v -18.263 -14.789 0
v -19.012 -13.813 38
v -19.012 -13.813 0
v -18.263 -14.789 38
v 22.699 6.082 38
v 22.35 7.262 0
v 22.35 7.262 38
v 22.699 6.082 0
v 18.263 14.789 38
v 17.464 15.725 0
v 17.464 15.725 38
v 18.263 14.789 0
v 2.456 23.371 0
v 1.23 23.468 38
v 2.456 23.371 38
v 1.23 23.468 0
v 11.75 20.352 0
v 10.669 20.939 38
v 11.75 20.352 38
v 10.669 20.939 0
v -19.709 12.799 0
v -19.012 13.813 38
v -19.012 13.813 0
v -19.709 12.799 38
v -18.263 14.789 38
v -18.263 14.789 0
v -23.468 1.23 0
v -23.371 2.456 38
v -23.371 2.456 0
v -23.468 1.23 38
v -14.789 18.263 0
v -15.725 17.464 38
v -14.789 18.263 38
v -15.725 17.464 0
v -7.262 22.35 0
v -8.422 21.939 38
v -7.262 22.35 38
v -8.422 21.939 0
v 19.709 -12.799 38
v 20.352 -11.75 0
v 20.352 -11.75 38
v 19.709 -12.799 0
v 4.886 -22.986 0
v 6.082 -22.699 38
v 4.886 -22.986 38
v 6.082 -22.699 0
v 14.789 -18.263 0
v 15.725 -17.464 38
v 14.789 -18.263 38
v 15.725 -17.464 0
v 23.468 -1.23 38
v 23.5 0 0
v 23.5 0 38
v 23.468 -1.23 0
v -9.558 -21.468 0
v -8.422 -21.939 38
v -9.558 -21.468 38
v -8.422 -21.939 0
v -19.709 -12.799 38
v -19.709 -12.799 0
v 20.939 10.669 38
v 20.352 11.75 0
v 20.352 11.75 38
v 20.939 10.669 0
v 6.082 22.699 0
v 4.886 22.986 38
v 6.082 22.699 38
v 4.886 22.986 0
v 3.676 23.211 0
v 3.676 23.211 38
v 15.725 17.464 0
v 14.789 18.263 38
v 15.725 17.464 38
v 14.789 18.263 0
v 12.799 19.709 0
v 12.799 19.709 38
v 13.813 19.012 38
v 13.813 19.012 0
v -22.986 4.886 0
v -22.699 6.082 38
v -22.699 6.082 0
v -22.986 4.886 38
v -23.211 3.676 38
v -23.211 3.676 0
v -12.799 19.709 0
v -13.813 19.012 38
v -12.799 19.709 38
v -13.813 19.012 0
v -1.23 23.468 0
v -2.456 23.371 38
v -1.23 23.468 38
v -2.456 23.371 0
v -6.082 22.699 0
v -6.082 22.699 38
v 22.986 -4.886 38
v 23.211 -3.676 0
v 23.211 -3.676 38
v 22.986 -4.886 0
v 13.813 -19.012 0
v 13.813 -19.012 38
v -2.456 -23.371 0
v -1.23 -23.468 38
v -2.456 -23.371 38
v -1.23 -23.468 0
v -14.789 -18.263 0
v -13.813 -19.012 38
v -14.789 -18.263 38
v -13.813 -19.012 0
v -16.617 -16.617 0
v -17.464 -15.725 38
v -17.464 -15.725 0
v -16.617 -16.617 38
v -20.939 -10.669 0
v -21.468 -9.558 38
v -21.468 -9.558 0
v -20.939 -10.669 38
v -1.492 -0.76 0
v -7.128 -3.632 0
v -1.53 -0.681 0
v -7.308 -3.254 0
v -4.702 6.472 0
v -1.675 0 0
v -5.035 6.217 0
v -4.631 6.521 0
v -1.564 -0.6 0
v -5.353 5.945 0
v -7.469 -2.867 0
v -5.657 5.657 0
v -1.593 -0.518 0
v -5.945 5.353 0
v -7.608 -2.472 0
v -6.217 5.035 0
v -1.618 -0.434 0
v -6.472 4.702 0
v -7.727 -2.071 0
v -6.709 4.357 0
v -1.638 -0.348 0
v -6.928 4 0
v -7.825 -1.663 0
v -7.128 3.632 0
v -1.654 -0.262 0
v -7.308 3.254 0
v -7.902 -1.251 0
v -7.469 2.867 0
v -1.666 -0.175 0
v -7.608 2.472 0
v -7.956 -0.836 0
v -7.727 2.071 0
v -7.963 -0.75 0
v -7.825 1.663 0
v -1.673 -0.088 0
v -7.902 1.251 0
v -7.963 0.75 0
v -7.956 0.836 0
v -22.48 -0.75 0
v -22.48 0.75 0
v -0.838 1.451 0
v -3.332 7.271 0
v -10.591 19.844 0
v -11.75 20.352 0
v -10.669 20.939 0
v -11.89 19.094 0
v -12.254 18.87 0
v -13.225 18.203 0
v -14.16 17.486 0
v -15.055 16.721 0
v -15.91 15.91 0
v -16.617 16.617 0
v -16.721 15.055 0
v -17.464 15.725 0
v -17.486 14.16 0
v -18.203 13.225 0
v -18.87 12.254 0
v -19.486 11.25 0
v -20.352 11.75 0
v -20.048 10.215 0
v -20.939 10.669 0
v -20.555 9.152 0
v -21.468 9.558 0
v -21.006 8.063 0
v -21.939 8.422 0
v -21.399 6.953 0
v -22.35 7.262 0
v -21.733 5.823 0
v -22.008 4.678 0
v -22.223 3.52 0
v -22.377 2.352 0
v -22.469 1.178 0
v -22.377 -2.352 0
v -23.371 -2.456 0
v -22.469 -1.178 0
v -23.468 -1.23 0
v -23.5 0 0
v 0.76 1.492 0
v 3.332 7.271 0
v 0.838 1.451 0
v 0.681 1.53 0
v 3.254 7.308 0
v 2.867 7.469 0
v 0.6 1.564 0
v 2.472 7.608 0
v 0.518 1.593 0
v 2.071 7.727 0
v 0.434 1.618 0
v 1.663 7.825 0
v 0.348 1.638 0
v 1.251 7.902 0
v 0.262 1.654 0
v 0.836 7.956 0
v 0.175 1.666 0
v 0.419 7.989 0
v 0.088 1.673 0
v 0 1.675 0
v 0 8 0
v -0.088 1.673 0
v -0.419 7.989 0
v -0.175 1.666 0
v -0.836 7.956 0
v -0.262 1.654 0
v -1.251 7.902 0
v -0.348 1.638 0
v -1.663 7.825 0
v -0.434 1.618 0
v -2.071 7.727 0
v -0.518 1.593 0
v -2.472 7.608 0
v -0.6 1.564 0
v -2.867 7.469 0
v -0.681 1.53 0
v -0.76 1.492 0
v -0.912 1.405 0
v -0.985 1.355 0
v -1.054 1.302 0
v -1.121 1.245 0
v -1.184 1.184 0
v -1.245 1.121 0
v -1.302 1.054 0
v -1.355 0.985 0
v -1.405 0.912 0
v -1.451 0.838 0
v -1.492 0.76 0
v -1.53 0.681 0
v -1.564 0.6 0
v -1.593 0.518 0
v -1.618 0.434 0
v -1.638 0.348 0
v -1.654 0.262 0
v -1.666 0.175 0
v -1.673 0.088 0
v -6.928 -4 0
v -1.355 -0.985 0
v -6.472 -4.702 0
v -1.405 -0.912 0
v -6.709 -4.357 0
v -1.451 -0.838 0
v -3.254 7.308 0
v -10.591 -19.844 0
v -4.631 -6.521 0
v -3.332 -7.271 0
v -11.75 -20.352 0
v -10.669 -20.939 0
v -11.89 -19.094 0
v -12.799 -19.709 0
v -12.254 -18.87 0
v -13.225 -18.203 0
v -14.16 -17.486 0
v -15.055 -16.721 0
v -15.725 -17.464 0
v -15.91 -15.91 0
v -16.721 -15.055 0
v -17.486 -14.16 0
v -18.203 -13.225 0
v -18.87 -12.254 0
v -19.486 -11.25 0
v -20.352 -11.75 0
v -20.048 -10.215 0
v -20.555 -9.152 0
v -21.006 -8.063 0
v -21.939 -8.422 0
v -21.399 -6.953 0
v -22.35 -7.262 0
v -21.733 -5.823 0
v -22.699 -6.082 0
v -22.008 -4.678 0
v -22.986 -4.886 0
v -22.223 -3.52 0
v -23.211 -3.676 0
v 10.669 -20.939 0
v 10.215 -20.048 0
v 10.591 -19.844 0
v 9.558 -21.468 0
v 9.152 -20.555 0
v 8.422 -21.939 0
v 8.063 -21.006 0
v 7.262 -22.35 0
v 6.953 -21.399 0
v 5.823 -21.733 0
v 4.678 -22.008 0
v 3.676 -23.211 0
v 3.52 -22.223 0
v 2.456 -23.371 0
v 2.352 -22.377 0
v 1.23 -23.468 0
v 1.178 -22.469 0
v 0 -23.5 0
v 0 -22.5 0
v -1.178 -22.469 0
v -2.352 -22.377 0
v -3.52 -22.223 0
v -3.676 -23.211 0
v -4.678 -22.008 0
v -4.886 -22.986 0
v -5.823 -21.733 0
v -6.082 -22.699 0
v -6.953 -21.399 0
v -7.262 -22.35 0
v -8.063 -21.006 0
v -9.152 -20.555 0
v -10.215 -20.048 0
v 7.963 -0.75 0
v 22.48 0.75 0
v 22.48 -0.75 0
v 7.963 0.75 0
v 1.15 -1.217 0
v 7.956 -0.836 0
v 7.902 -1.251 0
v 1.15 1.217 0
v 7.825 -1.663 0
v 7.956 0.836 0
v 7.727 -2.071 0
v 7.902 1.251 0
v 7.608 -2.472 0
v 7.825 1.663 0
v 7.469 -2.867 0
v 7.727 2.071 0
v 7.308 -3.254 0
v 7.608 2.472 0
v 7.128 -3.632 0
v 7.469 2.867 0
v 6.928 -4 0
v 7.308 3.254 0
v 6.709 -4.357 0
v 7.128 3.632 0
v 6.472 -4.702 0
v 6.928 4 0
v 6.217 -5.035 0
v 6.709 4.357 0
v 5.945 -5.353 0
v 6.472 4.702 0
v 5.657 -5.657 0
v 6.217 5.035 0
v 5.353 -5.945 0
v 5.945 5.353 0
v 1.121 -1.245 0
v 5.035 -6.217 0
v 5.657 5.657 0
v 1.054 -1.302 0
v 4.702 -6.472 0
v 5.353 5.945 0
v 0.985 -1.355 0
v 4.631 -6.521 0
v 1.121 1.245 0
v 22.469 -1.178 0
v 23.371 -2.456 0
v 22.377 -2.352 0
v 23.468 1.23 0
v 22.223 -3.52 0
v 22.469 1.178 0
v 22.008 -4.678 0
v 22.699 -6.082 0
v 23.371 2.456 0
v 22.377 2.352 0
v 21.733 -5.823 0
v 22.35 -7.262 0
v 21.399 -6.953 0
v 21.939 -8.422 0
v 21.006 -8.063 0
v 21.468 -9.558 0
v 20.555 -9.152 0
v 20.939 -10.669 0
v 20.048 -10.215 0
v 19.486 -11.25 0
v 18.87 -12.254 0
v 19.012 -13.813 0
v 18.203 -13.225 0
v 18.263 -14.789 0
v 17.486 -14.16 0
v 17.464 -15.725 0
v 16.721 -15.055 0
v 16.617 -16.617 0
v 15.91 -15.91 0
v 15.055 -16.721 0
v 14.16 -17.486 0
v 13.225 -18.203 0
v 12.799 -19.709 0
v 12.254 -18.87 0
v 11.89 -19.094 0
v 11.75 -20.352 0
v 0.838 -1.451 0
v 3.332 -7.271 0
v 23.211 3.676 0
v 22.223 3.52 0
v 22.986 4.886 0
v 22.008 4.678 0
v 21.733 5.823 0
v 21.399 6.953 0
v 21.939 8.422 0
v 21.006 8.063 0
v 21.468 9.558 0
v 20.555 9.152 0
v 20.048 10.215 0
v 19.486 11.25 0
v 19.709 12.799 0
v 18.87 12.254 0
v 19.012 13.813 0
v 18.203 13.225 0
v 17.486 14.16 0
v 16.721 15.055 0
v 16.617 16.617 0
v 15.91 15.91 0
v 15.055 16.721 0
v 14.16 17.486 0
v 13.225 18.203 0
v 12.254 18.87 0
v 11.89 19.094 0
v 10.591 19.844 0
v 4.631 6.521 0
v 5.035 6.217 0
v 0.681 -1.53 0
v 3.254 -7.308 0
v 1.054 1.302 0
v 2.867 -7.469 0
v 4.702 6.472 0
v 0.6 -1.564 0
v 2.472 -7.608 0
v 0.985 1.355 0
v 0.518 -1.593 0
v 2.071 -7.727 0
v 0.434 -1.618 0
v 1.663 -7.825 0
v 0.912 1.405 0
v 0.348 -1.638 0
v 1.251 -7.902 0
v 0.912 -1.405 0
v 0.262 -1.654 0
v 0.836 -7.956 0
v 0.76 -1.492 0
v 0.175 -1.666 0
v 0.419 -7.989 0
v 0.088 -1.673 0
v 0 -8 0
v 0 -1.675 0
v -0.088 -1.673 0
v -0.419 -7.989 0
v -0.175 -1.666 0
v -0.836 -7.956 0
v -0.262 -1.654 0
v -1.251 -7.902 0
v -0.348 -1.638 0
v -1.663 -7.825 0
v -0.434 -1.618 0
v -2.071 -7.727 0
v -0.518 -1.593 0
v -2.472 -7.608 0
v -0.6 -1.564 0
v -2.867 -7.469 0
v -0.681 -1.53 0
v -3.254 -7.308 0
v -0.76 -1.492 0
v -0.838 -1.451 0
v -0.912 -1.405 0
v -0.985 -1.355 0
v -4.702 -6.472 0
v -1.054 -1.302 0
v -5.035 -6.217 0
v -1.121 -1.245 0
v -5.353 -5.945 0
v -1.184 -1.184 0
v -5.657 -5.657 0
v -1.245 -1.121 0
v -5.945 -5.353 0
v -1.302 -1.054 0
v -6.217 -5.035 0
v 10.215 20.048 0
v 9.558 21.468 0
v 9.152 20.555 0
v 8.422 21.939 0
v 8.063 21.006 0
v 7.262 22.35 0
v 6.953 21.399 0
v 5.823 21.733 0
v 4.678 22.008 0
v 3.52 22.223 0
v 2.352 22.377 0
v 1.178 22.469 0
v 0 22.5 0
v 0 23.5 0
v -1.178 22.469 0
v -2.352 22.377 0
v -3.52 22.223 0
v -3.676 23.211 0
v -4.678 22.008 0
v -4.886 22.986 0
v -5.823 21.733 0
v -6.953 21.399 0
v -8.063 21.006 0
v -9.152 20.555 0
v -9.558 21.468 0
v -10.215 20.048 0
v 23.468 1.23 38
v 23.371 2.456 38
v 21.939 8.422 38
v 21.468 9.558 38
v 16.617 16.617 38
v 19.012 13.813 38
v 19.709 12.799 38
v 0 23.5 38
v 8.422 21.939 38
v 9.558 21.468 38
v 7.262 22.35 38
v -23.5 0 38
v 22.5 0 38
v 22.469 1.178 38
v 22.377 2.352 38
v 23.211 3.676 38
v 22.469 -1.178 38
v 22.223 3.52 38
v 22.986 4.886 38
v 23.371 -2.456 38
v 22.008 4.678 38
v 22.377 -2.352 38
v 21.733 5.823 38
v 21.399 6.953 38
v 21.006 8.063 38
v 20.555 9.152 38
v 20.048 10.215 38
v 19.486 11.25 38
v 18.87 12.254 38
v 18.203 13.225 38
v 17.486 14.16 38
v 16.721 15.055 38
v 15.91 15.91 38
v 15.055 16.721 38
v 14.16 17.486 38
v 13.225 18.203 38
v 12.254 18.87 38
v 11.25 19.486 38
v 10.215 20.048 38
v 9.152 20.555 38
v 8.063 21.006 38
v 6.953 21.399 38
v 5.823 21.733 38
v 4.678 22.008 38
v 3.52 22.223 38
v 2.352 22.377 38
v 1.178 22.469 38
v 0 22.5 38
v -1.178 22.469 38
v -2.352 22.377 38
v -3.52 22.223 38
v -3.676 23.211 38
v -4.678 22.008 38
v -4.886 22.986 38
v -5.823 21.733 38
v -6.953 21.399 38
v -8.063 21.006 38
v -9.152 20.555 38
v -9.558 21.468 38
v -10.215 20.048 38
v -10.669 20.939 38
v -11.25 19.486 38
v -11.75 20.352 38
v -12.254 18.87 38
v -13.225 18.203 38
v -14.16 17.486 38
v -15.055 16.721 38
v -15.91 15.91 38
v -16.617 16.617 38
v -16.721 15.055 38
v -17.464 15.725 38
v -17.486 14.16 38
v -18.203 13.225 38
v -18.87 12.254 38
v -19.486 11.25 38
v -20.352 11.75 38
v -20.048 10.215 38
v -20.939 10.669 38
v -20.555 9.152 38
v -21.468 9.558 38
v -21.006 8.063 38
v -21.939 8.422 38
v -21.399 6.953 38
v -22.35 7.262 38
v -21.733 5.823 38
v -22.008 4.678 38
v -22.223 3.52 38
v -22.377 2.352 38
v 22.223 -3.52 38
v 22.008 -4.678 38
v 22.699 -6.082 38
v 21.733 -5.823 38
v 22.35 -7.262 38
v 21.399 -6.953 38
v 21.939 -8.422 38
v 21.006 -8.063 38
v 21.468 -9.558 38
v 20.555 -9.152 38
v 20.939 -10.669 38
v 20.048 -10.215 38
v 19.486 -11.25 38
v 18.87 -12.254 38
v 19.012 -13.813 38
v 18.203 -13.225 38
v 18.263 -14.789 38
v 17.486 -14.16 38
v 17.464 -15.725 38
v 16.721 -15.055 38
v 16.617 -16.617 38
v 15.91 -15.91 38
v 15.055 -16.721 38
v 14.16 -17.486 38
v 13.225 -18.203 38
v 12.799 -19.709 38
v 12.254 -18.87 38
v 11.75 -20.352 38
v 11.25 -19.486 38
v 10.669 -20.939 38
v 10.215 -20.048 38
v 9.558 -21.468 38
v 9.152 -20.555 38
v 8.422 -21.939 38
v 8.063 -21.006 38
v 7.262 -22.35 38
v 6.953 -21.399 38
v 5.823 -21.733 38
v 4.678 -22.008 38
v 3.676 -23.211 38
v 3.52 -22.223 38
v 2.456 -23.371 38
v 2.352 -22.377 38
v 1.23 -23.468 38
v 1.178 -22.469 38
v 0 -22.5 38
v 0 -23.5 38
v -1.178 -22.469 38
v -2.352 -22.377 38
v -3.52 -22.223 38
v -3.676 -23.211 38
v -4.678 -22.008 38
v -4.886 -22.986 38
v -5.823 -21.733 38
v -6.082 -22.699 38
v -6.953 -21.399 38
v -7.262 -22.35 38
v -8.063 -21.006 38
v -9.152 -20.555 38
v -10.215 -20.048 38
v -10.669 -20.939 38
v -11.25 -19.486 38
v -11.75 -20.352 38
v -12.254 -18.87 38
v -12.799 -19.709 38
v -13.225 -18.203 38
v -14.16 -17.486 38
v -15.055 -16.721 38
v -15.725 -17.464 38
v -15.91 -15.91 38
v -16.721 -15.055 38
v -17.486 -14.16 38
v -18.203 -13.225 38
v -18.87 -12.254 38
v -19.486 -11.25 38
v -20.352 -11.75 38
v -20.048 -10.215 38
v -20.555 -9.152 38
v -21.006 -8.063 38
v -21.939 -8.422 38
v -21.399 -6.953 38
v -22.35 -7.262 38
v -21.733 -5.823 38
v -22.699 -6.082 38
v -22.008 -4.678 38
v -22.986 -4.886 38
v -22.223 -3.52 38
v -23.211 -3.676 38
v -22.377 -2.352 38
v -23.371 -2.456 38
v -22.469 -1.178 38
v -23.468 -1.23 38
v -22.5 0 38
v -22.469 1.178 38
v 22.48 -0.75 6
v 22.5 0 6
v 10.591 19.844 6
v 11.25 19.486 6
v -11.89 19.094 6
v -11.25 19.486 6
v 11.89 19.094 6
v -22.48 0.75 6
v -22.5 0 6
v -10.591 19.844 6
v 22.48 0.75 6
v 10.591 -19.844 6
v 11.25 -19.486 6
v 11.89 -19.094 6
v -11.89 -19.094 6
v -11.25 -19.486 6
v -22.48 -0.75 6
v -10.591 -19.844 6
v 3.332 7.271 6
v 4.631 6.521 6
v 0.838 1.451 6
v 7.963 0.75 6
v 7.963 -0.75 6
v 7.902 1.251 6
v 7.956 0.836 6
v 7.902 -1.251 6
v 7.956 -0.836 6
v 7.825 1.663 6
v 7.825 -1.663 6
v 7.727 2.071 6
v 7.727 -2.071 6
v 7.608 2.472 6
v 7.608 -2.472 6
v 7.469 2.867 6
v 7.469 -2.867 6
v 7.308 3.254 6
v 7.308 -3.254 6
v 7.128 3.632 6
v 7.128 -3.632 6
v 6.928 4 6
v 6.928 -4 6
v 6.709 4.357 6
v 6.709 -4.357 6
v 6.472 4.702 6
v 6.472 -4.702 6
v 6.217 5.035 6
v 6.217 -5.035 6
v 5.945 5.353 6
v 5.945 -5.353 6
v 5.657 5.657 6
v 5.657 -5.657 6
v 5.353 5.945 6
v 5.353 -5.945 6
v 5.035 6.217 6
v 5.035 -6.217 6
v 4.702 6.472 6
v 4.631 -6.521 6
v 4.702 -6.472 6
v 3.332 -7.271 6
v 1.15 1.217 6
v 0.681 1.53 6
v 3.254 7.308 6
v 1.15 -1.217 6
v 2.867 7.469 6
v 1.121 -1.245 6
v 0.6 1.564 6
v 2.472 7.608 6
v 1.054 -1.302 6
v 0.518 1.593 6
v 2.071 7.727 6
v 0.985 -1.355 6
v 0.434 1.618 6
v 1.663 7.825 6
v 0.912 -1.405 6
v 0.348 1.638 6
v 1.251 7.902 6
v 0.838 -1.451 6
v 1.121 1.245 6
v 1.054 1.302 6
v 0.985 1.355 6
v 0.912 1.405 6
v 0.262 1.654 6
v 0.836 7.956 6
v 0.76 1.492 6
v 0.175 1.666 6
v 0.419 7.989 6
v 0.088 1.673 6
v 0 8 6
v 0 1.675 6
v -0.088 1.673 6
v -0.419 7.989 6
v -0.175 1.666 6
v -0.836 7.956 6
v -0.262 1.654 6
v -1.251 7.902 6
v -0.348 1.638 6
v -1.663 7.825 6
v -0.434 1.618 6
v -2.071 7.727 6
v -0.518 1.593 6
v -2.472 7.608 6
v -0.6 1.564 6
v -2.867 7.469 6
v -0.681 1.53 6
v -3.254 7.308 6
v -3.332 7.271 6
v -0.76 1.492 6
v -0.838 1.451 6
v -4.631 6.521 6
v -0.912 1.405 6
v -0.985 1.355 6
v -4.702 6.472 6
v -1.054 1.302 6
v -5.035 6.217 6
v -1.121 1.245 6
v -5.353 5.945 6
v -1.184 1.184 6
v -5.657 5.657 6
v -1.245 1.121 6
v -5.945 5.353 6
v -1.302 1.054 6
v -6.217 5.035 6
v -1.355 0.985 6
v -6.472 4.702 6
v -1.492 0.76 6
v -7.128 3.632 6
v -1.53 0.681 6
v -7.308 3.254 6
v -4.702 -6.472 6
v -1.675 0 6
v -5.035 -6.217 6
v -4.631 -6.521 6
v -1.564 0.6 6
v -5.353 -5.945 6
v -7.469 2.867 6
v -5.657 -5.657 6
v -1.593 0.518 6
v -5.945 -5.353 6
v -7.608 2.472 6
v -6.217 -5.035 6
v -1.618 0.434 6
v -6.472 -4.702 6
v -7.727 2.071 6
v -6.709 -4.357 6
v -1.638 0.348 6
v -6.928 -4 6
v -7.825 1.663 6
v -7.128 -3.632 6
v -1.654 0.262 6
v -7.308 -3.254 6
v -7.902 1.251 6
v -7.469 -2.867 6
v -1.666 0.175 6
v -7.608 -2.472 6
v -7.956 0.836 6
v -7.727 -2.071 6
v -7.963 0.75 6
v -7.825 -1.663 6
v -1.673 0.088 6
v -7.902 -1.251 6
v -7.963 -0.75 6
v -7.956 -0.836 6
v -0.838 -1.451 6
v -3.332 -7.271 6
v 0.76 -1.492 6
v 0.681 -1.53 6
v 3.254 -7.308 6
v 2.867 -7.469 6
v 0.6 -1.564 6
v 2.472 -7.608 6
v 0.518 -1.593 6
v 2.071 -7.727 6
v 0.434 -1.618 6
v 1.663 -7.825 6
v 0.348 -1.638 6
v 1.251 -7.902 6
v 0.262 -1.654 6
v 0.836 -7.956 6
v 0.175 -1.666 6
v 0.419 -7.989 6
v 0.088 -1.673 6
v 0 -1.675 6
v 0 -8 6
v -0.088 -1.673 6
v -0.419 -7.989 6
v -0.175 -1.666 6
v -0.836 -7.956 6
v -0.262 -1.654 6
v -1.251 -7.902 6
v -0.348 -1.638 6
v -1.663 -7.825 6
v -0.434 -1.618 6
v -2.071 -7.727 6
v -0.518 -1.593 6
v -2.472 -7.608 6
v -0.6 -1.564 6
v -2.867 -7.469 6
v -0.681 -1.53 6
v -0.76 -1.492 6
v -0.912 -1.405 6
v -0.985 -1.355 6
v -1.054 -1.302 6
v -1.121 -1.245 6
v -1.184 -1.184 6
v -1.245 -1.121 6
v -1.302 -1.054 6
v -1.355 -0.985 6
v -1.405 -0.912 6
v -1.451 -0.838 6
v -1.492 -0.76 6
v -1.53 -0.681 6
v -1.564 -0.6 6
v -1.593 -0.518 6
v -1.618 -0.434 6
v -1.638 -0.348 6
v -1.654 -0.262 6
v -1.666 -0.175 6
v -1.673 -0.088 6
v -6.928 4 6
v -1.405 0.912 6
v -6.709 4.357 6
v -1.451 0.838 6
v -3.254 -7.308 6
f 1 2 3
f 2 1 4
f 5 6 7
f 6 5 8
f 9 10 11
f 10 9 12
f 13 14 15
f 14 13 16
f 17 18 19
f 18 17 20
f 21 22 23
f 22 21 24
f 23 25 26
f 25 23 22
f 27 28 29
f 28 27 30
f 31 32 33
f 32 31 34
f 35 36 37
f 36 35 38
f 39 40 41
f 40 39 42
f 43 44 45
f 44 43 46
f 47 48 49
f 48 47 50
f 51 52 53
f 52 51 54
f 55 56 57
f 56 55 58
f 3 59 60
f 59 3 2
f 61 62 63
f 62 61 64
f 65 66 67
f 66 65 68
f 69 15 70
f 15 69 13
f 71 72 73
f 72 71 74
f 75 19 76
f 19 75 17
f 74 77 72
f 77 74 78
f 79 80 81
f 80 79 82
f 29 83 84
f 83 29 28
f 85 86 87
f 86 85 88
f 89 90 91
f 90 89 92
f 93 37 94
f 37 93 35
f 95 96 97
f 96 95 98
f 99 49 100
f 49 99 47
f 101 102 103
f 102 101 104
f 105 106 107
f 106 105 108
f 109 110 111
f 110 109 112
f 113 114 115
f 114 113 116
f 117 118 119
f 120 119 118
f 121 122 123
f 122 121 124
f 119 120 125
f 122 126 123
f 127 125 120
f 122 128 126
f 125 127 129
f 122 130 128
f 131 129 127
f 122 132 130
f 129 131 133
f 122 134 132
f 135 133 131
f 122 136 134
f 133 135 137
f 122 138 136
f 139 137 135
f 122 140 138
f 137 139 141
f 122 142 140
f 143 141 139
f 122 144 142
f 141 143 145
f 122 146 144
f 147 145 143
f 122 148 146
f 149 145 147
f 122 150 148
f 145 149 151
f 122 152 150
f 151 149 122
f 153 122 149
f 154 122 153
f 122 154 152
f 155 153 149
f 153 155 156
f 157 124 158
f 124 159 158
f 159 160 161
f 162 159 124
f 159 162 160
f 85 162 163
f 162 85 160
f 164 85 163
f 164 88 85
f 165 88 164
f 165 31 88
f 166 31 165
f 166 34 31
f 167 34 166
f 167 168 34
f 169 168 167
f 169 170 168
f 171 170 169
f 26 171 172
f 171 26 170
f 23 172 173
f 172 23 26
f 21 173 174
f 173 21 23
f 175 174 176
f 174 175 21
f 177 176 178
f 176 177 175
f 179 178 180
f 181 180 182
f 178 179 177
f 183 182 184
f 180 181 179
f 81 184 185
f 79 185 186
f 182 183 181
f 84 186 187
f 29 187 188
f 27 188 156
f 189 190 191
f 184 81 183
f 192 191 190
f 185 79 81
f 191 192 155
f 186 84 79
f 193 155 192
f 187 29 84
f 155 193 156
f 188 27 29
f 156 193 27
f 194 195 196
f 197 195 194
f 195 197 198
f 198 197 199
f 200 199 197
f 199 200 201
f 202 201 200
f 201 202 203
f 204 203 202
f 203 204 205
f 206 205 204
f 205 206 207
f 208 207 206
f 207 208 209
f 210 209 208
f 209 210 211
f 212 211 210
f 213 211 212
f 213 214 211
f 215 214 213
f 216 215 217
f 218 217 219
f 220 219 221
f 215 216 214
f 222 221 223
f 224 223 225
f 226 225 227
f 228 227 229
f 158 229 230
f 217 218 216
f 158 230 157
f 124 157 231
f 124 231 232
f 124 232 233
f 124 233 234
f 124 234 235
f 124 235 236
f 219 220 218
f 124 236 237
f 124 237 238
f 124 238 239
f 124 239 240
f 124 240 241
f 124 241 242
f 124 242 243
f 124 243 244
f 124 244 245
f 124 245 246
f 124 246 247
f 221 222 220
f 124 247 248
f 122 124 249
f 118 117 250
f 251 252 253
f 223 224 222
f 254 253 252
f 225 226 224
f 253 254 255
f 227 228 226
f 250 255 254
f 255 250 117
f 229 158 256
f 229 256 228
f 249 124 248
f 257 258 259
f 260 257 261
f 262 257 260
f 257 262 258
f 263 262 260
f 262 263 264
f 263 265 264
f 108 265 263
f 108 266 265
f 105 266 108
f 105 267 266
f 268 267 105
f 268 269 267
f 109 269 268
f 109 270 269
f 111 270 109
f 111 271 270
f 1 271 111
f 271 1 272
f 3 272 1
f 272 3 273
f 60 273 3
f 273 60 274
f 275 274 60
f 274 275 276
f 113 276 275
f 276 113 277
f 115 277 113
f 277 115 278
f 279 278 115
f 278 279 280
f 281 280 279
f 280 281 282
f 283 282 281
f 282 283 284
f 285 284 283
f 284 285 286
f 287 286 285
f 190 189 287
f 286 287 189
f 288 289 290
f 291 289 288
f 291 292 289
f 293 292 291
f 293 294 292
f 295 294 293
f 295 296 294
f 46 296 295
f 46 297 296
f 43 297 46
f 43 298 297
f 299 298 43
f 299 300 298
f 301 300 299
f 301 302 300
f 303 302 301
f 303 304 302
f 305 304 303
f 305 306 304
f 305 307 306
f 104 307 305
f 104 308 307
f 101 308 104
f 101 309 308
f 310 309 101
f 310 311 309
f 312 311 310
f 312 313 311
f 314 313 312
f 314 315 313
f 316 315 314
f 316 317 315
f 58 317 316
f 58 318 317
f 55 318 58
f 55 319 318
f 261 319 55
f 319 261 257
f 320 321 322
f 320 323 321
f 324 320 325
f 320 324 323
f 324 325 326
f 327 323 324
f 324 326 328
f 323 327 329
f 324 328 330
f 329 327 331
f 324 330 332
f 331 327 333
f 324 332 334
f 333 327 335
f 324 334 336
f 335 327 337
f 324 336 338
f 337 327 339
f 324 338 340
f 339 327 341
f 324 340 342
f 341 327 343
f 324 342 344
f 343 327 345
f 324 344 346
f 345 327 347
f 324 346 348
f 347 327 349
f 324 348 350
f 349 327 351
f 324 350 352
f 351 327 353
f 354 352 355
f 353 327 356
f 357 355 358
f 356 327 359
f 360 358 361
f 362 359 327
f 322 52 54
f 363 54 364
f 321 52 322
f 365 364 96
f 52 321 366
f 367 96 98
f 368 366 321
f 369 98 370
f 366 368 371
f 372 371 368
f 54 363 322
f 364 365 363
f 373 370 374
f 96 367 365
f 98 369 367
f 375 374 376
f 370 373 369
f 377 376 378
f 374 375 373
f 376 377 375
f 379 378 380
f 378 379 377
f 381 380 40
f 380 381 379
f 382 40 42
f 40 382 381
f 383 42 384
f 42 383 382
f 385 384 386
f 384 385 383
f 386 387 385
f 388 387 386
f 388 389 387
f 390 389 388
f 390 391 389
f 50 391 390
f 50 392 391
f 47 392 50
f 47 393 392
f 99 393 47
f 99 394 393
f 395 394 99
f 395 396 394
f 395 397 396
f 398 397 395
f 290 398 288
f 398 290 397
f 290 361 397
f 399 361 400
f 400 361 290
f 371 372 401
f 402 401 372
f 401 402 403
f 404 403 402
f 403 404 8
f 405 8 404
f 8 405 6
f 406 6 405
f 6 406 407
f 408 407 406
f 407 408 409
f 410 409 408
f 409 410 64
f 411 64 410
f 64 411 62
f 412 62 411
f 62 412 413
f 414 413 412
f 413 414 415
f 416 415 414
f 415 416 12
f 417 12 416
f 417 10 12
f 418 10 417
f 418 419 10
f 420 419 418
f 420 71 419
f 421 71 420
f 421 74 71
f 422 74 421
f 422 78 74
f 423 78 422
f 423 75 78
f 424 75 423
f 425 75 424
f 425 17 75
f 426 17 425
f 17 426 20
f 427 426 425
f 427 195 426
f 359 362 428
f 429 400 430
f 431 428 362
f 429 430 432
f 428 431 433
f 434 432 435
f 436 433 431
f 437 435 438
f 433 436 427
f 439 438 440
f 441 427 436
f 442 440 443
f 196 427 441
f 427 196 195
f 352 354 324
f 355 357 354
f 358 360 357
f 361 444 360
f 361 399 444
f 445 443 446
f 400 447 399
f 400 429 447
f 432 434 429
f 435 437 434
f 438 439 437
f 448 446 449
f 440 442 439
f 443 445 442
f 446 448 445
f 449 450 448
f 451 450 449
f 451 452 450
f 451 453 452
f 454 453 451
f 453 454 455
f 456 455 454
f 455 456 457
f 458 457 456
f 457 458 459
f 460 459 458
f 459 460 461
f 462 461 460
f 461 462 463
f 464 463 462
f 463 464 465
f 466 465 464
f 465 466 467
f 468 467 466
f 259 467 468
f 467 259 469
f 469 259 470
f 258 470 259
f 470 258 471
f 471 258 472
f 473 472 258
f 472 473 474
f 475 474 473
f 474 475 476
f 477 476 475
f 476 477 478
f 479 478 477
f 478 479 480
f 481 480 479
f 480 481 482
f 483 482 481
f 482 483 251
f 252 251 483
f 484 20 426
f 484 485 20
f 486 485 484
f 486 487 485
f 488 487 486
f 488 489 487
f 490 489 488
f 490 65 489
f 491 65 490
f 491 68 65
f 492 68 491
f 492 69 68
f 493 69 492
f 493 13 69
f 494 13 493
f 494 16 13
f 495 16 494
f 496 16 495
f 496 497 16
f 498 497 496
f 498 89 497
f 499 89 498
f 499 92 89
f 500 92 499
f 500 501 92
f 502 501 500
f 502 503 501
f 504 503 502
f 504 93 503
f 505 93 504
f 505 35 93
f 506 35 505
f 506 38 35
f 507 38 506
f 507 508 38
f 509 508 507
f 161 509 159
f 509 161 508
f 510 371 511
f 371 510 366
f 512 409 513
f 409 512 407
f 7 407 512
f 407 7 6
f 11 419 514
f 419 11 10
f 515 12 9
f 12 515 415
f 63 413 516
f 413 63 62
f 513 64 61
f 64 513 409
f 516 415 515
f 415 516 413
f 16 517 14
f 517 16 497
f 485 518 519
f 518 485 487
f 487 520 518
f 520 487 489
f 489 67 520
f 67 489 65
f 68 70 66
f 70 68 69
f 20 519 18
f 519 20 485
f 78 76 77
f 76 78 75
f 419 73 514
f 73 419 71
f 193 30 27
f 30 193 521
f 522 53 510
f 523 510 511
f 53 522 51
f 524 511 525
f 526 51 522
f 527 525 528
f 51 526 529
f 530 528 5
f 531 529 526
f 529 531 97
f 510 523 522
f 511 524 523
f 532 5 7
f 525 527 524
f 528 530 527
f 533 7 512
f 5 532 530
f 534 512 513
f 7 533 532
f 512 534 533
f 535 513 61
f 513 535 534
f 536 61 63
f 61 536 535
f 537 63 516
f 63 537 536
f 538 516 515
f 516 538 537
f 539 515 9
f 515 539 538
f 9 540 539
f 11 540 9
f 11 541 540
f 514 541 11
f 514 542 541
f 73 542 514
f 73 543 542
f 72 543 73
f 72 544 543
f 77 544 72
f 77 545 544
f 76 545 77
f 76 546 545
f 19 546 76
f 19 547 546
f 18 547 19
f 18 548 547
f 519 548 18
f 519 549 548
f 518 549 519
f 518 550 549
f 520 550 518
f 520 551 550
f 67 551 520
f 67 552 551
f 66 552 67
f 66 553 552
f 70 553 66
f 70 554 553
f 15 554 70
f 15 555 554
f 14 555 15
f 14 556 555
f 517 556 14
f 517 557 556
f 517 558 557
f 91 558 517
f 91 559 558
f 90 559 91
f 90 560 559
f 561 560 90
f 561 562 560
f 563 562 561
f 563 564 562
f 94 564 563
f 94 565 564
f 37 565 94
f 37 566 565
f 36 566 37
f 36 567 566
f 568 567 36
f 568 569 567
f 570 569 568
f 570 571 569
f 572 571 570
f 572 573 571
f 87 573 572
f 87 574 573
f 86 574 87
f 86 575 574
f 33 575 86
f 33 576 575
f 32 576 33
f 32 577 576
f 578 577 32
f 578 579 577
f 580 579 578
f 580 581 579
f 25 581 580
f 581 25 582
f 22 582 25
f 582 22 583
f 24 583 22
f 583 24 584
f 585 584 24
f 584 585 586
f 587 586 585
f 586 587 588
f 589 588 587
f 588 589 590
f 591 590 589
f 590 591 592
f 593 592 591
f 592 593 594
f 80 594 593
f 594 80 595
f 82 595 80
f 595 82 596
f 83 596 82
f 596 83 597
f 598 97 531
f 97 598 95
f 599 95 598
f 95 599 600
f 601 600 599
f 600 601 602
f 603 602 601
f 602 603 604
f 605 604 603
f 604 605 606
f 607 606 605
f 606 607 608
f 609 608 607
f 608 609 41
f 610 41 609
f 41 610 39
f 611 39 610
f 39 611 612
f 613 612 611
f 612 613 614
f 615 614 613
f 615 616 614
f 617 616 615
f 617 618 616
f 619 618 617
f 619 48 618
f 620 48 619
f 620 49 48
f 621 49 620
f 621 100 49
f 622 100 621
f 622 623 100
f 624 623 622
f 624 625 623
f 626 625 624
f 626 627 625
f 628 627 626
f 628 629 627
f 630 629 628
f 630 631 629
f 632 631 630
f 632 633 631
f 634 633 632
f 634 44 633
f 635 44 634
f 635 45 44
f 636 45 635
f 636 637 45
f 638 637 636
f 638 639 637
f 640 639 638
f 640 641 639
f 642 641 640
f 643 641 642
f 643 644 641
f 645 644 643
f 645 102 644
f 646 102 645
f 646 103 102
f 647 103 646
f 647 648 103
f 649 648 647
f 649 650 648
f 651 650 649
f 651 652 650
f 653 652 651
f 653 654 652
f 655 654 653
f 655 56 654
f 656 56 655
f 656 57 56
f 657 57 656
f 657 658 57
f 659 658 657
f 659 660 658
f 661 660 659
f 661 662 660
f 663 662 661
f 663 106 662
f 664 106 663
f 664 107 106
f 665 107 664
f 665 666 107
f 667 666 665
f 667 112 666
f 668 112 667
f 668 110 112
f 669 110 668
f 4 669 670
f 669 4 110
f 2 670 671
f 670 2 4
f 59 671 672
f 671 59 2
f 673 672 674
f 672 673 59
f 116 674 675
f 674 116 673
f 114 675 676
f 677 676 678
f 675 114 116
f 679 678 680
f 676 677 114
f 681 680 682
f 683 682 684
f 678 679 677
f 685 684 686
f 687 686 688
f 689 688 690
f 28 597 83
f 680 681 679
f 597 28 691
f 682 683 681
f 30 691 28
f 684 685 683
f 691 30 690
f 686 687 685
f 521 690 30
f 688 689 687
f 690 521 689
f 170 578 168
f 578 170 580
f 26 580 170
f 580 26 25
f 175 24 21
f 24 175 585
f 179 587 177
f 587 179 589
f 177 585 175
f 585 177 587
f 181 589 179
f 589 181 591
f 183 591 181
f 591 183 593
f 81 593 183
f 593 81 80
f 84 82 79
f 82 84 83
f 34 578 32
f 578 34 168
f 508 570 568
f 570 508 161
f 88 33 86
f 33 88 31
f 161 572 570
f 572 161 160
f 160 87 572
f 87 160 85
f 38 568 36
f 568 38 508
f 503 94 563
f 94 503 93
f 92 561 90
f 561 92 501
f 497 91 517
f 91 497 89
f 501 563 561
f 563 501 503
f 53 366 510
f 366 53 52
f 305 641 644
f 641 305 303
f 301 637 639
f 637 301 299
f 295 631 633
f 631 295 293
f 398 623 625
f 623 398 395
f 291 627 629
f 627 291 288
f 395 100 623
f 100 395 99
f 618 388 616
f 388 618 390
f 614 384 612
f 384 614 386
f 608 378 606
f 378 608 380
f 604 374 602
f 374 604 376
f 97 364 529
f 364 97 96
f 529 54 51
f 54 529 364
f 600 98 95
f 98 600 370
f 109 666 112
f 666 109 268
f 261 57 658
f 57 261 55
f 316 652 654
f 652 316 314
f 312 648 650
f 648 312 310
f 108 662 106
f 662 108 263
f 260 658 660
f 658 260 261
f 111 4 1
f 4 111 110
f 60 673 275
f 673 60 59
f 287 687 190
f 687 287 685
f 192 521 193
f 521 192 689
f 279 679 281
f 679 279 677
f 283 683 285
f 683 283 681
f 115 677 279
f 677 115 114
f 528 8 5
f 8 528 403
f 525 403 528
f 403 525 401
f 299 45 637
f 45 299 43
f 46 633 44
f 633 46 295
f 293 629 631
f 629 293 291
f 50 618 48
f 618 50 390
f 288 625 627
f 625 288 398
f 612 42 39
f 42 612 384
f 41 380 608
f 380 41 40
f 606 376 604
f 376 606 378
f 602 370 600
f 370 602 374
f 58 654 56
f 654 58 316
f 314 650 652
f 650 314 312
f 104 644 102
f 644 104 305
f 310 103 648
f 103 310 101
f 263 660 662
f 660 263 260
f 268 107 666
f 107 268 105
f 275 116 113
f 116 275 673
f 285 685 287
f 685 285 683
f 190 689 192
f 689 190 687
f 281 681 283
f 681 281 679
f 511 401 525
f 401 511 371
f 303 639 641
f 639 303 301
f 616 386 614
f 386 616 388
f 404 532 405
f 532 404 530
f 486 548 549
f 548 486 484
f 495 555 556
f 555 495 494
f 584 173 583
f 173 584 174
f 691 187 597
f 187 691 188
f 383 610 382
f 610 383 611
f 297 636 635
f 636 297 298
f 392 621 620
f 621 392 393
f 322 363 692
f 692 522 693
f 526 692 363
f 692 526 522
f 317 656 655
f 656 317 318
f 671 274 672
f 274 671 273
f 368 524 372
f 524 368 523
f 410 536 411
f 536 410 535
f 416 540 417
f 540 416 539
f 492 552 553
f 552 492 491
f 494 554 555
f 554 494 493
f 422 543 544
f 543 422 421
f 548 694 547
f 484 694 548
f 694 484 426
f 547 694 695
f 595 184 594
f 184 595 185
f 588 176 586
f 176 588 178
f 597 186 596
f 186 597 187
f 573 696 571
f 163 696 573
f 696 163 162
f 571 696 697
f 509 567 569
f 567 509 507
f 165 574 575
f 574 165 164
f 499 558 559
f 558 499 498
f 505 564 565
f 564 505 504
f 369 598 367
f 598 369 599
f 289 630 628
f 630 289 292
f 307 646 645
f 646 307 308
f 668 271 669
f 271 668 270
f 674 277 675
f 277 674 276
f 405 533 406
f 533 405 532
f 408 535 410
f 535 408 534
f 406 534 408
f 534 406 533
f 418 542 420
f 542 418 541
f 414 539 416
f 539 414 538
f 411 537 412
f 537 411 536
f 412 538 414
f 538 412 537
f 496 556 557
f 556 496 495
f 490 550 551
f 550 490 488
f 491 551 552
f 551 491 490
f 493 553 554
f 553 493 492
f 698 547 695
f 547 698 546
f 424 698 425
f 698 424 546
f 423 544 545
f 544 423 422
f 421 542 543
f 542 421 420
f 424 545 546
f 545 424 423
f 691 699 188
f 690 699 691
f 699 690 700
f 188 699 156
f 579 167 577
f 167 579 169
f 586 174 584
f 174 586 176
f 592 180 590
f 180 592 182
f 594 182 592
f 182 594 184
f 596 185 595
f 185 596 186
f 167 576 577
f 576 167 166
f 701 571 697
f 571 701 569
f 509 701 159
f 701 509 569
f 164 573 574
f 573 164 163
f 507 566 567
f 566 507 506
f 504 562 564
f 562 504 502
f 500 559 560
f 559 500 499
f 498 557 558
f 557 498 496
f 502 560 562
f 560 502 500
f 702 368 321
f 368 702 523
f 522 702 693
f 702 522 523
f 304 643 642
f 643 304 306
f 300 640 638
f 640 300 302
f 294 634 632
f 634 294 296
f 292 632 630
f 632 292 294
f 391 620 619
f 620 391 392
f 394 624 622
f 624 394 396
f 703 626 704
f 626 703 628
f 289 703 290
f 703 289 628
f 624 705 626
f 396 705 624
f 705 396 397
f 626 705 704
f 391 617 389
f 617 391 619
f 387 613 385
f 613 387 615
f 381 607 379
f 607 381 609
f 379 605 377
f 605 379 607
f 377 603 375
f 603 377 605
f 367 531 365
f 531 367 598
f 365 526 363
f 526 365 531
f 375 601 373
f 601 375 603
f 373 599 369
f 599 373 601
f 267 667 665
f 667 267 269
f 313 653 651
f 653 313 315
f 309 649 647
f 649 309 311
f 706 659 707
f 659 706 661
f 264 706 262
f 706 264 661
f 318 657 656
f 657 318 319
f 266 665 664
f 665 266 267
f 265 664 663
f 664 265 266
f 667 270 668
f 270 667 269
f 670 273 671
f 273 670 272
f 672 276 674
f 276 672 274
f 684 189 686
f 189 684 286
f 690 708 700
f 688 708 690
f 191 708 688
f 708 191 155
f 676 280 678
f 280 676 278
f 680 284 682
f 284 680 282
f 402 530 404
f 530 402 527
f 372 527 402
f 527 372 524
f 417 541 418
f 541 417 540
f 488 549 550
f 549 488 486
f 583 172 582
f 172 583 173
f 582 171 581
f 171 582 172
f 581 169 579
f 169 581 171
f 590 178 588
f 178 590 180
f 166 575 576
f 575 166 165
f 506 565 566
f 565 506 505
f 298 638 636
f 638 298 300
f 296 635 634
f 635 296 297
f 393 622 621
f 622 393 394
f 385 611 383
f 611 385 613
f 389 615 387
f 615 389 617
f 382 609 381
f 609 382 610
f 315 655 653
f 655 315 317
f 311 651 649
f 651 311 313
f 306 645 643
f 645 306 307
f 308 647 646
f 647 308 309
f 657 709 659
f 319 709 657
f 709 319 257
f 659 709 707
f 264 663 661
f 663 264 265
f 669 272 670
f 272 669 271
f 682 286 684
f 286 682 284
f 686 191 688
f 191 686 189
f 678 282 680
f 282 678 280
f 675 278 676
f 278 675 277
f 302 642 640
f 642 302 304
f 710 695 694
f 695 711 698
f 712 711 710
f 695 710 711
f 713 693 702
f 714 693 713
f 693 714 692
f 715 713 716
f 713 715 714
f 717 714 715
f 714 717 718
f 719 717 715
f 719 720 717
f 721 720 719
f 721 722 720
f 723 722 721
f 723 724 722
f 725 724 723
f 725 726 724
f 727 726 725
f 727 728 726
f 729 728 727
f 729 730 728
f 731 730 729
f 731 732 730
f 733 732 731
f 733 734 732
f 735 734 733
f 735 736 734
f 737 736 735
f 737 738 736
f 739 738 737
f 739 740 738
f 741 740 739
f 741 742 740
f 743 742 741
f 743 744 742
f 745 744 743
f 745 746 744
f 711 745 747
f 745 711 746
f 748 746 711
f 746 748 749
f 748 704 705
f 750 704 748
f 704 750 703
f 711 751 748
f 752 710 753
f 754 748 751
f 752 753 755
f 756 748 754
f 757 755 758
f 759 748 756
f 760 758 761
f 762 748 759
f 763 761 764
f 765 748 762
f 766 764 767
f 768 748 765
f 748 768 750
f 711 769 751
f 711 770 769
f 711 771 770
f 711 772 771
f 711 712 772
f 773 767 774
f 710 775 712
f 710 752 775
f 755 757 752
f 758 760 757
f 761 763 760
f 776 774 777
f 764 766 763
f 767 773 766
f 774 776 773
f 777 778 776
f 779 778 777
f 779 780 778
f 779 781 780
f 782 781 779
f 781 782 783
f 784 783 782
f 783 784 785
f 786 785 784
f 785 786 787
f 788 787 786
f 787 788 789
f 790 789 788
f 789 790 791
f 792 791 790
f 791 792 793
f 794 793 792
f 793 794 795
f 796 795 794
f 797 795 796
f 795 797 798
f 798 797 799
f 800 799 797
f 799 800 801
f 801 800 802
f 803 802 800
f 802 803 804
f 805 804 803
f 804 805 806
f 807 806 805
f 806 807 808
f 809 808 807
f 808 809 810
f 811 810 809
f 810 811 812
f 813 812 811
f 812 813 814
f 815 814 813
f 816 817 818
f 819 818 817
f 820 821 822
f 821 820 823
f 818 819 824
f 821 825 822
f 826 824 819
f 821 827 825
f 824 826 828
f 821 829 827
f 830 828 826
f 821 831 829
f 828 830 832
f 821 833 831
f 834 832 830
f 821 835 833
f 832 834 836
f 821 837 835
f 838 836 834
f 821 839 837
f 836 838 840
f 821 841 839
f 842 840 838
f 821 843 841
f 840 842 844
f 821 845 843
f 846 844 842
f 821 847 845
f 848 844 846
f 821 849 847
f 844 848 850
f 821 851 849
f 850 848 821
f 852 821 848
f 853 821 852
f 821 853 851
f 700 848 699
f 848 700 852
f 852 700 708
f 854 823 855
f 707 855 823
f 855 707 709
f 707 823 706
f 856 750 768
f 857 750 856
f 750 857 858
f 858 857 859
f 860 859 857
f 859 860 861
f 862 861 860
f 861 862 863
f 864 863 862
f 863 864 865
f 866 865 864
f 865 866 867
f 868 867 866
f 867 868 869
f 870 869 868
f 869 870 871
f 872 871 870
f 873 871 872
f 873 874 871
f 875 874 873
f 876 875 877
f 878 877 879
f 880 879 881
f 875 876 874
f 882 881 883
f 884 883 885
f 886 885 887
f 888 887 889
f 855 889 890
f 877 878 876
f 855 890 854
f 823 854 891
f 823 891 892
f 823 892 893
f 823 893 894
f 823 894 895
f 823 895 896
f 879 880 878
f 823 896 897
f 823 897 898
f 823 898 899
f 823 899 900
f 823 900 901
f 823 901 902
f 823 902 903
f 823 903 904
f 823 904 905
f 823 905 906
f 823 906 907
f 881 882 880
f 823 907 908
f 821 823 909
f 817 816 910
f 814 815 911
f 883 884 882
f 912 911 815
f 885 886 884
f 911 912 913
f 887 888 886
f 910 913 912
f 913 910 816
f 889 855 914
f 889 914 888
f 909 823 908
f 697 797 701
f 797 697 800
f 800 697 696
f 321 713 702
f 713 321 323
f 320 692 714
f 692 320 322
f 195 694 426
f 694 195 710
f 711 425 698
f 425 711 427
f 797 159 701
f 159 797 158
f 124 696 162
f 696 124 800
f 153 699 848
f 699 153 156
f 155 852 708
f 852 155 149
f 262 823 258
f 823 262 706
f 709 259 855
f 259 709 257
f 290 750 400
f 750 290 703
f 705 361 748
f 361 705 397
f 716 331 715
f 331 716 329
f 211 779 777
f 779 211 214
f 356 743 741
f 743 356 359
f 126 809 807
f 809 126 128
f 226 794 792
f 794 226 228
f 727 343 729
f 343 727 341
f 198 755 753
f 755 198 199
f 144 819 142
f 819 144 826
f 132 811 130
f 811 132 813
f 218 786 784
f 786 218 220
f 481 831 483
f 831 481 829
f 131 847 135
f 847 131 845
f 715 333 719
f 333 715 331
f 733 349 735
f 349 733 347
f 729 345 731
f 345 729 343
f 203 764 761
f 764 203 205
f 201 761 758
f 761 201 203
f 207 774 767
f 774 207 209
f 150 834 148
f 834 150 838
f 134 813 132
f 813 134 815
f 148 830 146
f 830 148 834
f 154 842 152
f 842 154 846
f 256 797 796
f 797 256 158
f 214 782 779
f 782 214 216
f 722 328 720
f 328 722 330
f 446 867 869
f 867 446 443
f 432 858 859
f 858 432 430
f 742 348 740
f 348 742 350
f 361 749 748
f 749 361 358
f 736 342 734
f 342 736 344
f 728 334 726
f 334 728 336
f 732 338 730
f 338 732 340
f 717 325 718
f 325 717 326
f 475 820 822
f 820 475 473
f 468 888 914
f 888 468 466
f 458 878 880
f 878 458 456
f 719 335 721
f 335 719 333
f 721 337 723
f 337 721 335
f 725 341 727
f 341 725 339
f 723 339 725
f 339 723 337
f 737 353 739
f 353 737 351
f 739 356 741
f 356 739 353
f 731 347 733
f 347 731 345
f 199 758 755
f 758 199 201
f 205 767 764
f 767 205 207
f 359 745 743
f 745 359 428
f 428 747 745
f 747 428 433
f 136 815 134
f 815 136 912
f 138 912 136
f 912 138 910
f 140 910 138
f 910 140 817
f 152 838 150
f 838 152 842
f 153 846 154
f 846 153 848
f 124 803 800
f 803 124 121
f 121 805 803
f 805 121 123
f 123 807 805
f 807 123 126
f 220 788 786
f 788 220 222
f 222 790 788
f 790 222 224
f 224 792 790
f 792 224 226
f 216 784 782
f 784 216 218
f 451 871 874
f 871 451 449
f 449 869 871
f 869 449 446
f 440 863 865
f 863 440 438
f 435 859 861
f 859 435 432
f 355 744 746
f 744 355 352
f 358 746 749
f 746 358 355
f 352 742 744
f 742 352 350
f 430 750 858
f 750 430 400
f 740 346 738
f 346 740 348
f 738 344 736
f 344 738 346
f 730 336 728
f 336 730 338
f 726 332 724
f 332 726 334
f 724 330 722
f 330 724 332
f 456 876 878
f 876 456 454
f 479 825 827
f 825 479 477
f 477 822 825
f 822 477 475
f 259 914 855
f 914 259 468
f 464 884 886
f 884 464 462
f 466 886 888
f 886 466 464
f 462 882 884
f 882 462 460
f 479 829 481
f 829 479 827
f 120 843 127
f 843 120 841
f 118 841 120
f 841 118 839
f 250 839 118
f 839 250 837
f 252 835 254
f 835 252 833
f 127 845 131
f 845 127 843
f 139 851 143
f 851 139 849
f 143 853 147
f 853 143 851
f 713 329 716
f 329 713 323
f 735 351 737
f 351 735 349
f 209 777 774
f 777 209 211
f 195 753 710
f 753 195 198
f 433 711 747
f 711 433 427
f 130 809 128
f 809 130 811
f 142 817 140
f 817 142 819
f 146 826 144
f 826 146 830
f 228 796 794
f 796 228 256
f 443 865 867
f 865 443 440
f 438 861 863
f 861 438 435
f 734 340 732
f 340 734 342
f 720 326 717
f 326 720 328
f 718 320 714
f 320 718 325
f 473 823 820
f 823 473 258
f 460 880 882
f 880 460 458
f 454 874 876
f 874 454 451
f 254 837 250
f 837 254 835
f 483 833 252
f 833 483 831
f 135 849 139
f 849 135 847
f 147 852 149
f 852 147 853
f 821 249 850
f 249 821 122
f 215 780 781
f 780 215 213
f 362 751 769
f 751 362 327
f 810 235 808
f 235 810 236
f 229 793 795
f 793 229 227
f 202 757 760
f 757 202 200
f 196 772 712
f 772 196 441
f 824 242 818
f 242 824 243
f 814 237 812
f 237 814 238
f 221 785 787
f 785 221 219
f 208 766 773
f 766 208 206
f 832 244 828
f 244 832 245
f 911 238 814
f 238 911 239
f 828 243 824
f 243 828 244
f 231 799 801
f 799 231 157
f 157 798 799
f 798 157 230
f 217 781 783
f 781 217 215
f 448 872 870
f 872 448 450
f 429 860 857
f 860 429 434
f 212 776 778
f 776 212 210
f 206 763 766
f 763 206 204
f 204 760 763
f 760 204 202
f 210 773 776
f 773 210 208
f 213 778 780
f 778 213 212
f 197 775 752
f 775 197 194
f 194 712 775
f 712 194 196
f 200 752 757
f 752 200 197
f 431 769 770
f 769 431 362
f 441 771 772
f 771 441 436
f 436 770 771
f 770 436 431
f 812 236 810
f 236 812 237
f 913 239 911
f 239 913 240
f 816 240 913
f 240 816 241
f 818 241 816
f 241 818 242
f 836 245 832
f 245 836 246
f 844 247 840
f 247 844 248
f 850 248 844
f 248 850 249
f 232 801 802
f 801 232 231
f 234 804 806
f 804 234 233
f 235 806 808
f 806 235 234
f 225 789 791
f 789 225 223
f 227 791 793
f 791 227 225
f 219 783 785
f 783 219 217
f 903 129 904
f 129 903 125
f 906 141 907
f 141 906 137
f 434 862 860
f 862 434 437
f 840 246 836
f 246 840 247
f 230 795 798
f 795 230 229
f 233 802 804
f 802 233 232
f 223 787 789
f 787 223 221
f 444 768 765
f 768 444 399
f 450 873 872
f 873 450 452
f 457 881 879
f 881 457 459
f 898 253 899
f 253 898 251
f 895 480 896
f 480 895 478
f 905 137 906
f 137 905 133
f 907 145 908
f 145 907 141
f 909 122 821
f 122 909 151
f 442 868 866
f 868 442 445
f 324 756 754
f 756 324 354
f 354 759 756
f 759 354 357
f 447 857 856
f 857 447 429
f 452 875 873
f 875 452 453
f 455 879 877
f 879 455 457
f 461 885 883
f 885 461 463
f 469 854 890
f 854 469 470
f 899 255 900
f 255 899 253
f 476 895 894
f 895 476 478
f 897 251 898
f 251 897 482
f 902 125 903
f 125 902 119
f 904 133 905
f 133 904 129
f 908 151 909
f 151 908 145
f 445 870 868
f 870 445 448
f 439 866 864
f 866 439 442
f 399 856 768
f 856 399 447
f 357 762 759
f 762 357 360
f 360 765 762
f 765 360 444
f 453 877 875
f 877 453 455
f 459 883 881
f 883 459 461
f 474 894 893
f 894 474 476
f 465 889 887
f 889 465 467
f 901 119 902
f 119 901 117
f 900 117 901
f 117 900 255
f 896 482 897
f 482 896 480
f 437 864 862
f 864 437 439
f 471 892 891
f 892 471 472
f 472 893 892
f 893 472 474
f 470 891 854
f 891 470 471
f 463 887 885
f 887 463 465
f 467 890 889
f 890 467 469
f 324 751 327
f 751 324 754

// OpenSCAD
$fn=120;
difference(){
cylinder(d=47,h=38);
translate([0,0,-1])cylinder(d=45,h=40);
}
difference(){
union()
{
for(i=[0:60:300])
{
    rotate([0,0,i])translate([3,-0.75,0])
    cube(size=[20,1.5,6]);
} 
cylinder(d=16,h=6);
}
translate([0,0,-1])cylinder(d=3.35,h=21);
}
translate([1.15,-2,0])cube(size=[2,4,6]);
